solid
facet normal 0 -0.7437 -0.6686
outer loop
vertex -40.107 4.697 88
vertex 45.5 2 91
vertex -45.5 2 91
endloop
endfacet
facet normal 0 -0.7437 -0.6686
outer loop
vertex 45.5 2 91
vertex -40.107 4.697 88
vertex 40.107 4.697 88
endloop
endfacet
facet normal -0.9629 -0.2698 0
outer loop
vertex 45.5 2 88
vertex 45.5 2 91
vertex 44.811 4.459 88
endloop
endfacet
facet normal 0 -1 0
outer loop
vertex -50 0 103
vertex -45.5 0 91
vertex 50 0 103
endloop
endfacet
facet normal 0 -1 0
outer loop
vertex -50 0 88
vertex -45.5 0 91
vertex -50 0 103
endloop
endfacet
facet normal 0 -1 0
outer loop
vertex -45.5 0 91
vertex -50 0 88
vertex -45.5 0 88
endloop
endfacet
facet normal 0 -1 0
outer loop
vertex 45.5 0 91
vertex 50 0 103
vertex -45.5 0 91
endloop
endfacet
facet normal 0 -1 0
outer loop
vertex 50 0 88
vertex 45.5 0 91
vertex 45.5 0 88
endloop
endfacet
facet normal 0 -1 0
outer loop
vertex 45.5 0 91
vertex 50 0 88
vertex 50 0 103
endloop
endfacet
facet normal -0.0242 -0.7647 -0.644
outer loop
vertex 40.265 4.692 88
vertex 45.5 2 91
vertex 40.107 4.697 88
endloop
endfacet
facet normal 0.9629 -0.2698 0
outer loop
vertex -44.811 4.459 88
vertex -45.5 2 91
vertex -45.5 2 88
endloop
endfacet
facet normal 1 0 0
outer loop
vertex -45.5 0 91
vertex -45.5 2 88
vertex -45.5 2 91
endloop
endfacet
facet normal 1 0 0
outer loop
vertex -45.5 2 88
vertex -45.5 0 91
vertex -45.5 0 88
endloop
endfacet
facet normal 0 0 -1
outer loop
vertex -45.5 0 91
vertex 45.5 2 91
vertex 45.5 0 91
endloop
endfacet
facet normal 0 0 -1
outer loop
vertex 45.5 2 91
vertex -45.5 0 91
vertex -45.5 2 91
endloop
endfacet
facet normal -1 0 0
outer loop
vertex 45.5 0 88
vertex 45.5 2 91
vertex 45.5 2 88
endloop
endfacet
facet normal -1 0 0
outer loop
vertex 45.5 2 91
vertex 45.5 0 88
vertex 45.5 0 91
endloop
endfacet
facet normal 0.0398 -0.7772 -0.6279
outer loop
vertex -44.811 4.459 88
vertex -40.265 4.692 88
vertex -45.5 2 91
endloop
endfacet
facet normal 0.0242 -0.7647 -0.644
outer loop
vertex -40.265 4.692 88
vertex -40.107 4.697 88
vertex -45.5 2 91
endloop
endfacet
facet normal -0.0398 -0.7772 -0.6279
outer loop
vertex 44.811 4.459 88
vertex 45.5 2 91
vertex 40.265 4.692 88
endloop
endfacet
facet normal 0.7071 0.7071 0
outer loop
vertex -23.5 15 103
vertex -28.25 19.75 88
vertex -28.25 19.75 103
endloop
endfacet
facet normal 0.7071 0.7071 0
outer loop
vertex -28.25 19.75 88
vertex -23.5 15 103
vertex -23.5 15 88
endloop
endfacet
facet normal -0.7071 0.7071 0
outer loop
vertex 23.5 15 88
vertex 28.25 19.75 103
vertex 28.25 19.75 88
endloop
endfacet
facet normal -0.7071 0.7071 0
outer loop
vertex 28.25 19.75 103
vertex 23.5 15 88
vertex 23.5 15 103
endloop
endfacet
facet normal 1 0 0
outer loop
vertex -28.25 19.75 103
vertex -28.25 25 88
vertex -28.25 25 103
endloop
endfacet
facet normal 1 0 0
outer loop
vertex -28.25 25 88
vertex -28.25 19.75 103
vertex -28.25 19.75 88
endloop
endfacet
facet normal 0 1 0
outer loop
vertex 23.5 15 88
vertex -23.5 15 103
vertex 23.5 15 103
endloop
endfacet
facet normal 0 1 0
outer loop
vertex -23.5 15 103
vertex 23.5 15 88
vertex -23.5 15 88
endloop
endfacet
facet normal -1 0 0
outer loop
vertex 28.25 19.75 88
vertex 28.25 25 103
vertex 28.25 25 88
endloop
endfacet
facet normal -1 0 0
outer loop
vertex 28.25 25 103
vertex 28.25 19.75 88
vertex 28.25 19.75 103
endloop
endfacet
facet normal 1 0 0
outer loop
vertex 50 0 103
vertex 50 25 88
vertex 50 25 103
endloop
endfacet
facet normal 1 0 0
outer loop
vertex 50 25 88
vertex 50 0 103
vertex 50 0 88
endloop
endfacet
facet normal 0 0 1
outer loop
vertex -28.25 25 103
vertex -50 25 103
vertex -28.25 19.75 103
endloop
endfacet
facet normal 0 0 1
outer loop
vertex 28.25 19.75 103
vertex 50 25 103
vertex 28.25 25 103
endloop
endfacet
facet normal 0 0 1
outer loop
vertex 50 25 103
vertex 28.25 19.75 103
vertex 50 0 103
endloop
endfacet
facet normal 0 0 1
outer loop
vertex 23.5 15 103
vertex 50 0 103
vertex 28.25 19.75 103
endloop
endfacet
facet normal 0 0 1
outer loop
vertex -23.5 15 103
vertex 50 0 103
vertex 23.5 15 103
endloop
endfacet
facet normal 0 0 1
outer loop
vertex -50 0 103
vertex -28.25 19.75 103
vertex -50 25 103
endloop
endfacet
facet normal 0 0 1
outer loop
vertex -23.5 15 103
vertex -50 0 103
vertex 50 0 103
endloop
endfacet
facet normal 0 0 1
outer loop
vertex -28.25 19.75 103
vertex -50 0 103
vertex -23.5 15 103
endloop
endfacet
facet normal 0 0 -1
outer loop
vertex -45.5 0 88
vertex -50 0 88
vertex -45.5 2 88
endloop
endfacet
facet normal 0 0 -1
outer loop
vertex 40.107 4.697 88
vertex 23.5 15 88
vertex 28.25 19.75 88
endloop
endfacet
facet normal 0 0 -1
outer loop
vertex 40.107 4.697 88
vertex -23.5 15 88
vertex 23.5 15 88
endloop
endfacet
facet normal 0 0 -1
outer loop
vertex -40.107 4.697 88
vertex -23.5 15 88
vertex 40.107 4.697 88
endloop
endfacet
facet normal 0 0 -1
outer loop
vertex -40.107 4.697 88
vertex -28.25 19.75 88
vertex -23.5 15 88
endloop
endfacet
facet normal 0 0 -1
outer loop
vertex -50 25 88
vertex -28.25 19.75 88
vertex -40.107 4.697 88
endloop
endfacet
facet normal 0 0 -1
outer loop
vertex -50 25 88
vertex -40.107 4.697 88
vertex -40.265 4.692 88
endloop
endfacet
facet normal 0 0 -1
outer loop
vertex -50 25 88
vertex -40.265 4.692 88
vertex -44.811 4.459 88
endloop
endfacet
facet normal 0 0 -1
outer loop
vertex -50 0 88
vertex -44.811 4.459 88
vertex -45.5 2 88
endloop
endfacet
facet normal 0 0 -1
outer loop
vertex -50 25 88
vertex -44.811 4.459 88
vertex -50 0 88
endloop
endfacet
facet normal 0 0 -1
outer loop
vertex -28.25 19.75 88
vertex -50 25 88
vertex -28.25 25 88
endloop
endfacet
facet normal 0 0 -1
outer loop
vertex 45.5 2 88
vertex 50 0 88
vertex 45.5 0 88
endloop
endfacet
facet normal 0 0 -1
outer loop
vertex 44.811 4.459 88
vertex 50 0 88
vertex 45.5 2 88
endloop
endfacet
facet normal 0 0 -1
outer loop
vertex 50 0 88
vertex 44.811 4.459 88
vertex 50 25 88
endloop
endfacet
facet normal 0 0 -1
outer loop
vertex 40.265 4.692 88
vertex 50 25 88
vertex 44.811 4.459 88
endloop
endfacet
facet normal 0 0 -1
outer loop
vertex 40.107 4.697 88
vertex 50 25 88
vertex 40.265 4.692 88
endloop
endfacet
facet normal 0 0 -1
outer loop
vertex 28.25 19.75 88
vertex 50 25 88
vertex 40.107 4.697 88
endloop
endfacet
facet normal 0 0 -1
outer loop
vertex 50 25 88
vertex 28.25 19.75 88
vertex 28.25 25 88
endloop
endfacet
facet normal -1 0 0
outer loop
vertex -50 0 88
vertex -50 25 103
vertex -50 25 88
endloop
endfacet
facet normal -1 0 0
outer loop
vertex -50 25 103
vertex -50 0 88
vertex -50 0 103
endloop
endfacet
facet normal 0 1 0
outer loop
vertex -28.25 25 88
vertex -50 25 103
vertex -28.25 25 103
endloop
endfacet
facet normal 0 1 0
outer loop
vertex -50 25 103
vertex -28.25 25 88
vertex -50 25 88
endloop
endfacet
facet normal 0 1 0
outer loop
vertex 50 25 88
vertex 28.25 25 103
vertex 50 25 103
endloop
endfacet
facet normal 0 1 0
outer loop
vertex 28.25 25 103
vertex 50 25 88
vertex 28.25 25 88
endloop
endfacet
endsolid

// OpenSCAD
// file: vesascope.scad
$fn=100;
e=.001;
e2=e*2;

scope_d = 50.4;
scope_ring_h=7;
scope_ring_w=1.2;
scope_distance = 15;

scope_outer_ring_d=8;

vesa_dist = 75;
vesa_margin = 8;
vesa_d = 2.;
vesa_plate_w = vesa_dist+vesa_margin*2;

vesa_hole_d=5.1;
vesa_hole_cutout=10;


brace_w=0.8;

base_h=1;

module at_scope()
{
	translate([0, scope_distance+scope_ring_w+scope_d/2, 0])
	children();
}

module at_vesa_holes()
{
	for (x=[-vesa_dist/2, vesa_dist/2])
	for (z=[vesa_margin, vesa_margin+vesa_dist])
	translate([x,0,z])
	rotate([-90,0,0])
	children();
}


module base_plate(h=10, d=0)
{
	hull()
	{
		at_scope() cylinder(h, r=scope_d/2+scope_outer_ring_d+d);

		translate([-vesa_plate_w/2-d,0,0])
			cube([vesa_plate_w+d*2, vesa_d, h]);
	}
}

module vesa_plate(d=0)
{
	translate([-vesa_plate_w/2,0,0])
		cube([vesa_plate_w, vesa_d, vesa_plate_w]);

}

module vesa_adapter()
{

difference()
{
	union()
	{
		at_scope() cylinder(scope_ring_h, r=scope_d/2+scope_ring_w);
		vesa_plate();
		base_plate(base_h);
		at_vesa_holes()
		hull(){
			cylinder(h=6, r1=vesa_hole_d/2+4, r2=vesa_hole_d/2+1);
			translate([0,5.5,vesa_d-e])
			cylinder(h=e, r1=2, r2=1);
		}

		intersection()
		{
			difference()
			{
				base_plate(vesa_plate_w);
difference()
{
				translate([0,0,-e])
				base_plate(vesa_plate_w+e2, d=-brace_w);
				union()
				{
					rotate([45,0,0])
					{
						for (x=[-25,0,25])
						translate([x,0,0])
						cube([.8,14,14], center=true);
						cube([100,7,7], center=true);
					}

					for (x=[-vesa_plate_w/2,vesa_plate_w/2])
					translate([x,0,0])
					rotate([0,0,45])
					cube([7,7,200], center=true);
				}
}
			}

				hull()
				{
					vesa_plate();
					at_scope()
					translate([0, scope_outer_ring_d+scope_d/2, 0])
					translate([-vesa_plate_w/2,0,0])
					cube([vesa_plate_w, vesa_d, e]);
				}
		}

	}

	at_scope()
	translate([0,0,-e])
		cylinder(scope_ring_h+e2, r=scope_d/2);

	at_vesa_holes()
	translate([0,0,-e])
	cylinder(h=vesa_hole_cutout+e2, r=vesa_hole_d/2);
}

}

vesa_adapter();
// main file
use <vesascope.scad>

difference()
{
union()
{
	translate([-50,0,88])
	cube([100,25, 15]);
}
union()
{
hull()vesa_adapter();


translate([0,15,80])
hull()
{
translate([-56.5/2,(56.5-47)/2,0])
cube([56.5,47,30]);
translate([-47/2, 0,0])
cube([47,56.5,30]);
}
}
}
